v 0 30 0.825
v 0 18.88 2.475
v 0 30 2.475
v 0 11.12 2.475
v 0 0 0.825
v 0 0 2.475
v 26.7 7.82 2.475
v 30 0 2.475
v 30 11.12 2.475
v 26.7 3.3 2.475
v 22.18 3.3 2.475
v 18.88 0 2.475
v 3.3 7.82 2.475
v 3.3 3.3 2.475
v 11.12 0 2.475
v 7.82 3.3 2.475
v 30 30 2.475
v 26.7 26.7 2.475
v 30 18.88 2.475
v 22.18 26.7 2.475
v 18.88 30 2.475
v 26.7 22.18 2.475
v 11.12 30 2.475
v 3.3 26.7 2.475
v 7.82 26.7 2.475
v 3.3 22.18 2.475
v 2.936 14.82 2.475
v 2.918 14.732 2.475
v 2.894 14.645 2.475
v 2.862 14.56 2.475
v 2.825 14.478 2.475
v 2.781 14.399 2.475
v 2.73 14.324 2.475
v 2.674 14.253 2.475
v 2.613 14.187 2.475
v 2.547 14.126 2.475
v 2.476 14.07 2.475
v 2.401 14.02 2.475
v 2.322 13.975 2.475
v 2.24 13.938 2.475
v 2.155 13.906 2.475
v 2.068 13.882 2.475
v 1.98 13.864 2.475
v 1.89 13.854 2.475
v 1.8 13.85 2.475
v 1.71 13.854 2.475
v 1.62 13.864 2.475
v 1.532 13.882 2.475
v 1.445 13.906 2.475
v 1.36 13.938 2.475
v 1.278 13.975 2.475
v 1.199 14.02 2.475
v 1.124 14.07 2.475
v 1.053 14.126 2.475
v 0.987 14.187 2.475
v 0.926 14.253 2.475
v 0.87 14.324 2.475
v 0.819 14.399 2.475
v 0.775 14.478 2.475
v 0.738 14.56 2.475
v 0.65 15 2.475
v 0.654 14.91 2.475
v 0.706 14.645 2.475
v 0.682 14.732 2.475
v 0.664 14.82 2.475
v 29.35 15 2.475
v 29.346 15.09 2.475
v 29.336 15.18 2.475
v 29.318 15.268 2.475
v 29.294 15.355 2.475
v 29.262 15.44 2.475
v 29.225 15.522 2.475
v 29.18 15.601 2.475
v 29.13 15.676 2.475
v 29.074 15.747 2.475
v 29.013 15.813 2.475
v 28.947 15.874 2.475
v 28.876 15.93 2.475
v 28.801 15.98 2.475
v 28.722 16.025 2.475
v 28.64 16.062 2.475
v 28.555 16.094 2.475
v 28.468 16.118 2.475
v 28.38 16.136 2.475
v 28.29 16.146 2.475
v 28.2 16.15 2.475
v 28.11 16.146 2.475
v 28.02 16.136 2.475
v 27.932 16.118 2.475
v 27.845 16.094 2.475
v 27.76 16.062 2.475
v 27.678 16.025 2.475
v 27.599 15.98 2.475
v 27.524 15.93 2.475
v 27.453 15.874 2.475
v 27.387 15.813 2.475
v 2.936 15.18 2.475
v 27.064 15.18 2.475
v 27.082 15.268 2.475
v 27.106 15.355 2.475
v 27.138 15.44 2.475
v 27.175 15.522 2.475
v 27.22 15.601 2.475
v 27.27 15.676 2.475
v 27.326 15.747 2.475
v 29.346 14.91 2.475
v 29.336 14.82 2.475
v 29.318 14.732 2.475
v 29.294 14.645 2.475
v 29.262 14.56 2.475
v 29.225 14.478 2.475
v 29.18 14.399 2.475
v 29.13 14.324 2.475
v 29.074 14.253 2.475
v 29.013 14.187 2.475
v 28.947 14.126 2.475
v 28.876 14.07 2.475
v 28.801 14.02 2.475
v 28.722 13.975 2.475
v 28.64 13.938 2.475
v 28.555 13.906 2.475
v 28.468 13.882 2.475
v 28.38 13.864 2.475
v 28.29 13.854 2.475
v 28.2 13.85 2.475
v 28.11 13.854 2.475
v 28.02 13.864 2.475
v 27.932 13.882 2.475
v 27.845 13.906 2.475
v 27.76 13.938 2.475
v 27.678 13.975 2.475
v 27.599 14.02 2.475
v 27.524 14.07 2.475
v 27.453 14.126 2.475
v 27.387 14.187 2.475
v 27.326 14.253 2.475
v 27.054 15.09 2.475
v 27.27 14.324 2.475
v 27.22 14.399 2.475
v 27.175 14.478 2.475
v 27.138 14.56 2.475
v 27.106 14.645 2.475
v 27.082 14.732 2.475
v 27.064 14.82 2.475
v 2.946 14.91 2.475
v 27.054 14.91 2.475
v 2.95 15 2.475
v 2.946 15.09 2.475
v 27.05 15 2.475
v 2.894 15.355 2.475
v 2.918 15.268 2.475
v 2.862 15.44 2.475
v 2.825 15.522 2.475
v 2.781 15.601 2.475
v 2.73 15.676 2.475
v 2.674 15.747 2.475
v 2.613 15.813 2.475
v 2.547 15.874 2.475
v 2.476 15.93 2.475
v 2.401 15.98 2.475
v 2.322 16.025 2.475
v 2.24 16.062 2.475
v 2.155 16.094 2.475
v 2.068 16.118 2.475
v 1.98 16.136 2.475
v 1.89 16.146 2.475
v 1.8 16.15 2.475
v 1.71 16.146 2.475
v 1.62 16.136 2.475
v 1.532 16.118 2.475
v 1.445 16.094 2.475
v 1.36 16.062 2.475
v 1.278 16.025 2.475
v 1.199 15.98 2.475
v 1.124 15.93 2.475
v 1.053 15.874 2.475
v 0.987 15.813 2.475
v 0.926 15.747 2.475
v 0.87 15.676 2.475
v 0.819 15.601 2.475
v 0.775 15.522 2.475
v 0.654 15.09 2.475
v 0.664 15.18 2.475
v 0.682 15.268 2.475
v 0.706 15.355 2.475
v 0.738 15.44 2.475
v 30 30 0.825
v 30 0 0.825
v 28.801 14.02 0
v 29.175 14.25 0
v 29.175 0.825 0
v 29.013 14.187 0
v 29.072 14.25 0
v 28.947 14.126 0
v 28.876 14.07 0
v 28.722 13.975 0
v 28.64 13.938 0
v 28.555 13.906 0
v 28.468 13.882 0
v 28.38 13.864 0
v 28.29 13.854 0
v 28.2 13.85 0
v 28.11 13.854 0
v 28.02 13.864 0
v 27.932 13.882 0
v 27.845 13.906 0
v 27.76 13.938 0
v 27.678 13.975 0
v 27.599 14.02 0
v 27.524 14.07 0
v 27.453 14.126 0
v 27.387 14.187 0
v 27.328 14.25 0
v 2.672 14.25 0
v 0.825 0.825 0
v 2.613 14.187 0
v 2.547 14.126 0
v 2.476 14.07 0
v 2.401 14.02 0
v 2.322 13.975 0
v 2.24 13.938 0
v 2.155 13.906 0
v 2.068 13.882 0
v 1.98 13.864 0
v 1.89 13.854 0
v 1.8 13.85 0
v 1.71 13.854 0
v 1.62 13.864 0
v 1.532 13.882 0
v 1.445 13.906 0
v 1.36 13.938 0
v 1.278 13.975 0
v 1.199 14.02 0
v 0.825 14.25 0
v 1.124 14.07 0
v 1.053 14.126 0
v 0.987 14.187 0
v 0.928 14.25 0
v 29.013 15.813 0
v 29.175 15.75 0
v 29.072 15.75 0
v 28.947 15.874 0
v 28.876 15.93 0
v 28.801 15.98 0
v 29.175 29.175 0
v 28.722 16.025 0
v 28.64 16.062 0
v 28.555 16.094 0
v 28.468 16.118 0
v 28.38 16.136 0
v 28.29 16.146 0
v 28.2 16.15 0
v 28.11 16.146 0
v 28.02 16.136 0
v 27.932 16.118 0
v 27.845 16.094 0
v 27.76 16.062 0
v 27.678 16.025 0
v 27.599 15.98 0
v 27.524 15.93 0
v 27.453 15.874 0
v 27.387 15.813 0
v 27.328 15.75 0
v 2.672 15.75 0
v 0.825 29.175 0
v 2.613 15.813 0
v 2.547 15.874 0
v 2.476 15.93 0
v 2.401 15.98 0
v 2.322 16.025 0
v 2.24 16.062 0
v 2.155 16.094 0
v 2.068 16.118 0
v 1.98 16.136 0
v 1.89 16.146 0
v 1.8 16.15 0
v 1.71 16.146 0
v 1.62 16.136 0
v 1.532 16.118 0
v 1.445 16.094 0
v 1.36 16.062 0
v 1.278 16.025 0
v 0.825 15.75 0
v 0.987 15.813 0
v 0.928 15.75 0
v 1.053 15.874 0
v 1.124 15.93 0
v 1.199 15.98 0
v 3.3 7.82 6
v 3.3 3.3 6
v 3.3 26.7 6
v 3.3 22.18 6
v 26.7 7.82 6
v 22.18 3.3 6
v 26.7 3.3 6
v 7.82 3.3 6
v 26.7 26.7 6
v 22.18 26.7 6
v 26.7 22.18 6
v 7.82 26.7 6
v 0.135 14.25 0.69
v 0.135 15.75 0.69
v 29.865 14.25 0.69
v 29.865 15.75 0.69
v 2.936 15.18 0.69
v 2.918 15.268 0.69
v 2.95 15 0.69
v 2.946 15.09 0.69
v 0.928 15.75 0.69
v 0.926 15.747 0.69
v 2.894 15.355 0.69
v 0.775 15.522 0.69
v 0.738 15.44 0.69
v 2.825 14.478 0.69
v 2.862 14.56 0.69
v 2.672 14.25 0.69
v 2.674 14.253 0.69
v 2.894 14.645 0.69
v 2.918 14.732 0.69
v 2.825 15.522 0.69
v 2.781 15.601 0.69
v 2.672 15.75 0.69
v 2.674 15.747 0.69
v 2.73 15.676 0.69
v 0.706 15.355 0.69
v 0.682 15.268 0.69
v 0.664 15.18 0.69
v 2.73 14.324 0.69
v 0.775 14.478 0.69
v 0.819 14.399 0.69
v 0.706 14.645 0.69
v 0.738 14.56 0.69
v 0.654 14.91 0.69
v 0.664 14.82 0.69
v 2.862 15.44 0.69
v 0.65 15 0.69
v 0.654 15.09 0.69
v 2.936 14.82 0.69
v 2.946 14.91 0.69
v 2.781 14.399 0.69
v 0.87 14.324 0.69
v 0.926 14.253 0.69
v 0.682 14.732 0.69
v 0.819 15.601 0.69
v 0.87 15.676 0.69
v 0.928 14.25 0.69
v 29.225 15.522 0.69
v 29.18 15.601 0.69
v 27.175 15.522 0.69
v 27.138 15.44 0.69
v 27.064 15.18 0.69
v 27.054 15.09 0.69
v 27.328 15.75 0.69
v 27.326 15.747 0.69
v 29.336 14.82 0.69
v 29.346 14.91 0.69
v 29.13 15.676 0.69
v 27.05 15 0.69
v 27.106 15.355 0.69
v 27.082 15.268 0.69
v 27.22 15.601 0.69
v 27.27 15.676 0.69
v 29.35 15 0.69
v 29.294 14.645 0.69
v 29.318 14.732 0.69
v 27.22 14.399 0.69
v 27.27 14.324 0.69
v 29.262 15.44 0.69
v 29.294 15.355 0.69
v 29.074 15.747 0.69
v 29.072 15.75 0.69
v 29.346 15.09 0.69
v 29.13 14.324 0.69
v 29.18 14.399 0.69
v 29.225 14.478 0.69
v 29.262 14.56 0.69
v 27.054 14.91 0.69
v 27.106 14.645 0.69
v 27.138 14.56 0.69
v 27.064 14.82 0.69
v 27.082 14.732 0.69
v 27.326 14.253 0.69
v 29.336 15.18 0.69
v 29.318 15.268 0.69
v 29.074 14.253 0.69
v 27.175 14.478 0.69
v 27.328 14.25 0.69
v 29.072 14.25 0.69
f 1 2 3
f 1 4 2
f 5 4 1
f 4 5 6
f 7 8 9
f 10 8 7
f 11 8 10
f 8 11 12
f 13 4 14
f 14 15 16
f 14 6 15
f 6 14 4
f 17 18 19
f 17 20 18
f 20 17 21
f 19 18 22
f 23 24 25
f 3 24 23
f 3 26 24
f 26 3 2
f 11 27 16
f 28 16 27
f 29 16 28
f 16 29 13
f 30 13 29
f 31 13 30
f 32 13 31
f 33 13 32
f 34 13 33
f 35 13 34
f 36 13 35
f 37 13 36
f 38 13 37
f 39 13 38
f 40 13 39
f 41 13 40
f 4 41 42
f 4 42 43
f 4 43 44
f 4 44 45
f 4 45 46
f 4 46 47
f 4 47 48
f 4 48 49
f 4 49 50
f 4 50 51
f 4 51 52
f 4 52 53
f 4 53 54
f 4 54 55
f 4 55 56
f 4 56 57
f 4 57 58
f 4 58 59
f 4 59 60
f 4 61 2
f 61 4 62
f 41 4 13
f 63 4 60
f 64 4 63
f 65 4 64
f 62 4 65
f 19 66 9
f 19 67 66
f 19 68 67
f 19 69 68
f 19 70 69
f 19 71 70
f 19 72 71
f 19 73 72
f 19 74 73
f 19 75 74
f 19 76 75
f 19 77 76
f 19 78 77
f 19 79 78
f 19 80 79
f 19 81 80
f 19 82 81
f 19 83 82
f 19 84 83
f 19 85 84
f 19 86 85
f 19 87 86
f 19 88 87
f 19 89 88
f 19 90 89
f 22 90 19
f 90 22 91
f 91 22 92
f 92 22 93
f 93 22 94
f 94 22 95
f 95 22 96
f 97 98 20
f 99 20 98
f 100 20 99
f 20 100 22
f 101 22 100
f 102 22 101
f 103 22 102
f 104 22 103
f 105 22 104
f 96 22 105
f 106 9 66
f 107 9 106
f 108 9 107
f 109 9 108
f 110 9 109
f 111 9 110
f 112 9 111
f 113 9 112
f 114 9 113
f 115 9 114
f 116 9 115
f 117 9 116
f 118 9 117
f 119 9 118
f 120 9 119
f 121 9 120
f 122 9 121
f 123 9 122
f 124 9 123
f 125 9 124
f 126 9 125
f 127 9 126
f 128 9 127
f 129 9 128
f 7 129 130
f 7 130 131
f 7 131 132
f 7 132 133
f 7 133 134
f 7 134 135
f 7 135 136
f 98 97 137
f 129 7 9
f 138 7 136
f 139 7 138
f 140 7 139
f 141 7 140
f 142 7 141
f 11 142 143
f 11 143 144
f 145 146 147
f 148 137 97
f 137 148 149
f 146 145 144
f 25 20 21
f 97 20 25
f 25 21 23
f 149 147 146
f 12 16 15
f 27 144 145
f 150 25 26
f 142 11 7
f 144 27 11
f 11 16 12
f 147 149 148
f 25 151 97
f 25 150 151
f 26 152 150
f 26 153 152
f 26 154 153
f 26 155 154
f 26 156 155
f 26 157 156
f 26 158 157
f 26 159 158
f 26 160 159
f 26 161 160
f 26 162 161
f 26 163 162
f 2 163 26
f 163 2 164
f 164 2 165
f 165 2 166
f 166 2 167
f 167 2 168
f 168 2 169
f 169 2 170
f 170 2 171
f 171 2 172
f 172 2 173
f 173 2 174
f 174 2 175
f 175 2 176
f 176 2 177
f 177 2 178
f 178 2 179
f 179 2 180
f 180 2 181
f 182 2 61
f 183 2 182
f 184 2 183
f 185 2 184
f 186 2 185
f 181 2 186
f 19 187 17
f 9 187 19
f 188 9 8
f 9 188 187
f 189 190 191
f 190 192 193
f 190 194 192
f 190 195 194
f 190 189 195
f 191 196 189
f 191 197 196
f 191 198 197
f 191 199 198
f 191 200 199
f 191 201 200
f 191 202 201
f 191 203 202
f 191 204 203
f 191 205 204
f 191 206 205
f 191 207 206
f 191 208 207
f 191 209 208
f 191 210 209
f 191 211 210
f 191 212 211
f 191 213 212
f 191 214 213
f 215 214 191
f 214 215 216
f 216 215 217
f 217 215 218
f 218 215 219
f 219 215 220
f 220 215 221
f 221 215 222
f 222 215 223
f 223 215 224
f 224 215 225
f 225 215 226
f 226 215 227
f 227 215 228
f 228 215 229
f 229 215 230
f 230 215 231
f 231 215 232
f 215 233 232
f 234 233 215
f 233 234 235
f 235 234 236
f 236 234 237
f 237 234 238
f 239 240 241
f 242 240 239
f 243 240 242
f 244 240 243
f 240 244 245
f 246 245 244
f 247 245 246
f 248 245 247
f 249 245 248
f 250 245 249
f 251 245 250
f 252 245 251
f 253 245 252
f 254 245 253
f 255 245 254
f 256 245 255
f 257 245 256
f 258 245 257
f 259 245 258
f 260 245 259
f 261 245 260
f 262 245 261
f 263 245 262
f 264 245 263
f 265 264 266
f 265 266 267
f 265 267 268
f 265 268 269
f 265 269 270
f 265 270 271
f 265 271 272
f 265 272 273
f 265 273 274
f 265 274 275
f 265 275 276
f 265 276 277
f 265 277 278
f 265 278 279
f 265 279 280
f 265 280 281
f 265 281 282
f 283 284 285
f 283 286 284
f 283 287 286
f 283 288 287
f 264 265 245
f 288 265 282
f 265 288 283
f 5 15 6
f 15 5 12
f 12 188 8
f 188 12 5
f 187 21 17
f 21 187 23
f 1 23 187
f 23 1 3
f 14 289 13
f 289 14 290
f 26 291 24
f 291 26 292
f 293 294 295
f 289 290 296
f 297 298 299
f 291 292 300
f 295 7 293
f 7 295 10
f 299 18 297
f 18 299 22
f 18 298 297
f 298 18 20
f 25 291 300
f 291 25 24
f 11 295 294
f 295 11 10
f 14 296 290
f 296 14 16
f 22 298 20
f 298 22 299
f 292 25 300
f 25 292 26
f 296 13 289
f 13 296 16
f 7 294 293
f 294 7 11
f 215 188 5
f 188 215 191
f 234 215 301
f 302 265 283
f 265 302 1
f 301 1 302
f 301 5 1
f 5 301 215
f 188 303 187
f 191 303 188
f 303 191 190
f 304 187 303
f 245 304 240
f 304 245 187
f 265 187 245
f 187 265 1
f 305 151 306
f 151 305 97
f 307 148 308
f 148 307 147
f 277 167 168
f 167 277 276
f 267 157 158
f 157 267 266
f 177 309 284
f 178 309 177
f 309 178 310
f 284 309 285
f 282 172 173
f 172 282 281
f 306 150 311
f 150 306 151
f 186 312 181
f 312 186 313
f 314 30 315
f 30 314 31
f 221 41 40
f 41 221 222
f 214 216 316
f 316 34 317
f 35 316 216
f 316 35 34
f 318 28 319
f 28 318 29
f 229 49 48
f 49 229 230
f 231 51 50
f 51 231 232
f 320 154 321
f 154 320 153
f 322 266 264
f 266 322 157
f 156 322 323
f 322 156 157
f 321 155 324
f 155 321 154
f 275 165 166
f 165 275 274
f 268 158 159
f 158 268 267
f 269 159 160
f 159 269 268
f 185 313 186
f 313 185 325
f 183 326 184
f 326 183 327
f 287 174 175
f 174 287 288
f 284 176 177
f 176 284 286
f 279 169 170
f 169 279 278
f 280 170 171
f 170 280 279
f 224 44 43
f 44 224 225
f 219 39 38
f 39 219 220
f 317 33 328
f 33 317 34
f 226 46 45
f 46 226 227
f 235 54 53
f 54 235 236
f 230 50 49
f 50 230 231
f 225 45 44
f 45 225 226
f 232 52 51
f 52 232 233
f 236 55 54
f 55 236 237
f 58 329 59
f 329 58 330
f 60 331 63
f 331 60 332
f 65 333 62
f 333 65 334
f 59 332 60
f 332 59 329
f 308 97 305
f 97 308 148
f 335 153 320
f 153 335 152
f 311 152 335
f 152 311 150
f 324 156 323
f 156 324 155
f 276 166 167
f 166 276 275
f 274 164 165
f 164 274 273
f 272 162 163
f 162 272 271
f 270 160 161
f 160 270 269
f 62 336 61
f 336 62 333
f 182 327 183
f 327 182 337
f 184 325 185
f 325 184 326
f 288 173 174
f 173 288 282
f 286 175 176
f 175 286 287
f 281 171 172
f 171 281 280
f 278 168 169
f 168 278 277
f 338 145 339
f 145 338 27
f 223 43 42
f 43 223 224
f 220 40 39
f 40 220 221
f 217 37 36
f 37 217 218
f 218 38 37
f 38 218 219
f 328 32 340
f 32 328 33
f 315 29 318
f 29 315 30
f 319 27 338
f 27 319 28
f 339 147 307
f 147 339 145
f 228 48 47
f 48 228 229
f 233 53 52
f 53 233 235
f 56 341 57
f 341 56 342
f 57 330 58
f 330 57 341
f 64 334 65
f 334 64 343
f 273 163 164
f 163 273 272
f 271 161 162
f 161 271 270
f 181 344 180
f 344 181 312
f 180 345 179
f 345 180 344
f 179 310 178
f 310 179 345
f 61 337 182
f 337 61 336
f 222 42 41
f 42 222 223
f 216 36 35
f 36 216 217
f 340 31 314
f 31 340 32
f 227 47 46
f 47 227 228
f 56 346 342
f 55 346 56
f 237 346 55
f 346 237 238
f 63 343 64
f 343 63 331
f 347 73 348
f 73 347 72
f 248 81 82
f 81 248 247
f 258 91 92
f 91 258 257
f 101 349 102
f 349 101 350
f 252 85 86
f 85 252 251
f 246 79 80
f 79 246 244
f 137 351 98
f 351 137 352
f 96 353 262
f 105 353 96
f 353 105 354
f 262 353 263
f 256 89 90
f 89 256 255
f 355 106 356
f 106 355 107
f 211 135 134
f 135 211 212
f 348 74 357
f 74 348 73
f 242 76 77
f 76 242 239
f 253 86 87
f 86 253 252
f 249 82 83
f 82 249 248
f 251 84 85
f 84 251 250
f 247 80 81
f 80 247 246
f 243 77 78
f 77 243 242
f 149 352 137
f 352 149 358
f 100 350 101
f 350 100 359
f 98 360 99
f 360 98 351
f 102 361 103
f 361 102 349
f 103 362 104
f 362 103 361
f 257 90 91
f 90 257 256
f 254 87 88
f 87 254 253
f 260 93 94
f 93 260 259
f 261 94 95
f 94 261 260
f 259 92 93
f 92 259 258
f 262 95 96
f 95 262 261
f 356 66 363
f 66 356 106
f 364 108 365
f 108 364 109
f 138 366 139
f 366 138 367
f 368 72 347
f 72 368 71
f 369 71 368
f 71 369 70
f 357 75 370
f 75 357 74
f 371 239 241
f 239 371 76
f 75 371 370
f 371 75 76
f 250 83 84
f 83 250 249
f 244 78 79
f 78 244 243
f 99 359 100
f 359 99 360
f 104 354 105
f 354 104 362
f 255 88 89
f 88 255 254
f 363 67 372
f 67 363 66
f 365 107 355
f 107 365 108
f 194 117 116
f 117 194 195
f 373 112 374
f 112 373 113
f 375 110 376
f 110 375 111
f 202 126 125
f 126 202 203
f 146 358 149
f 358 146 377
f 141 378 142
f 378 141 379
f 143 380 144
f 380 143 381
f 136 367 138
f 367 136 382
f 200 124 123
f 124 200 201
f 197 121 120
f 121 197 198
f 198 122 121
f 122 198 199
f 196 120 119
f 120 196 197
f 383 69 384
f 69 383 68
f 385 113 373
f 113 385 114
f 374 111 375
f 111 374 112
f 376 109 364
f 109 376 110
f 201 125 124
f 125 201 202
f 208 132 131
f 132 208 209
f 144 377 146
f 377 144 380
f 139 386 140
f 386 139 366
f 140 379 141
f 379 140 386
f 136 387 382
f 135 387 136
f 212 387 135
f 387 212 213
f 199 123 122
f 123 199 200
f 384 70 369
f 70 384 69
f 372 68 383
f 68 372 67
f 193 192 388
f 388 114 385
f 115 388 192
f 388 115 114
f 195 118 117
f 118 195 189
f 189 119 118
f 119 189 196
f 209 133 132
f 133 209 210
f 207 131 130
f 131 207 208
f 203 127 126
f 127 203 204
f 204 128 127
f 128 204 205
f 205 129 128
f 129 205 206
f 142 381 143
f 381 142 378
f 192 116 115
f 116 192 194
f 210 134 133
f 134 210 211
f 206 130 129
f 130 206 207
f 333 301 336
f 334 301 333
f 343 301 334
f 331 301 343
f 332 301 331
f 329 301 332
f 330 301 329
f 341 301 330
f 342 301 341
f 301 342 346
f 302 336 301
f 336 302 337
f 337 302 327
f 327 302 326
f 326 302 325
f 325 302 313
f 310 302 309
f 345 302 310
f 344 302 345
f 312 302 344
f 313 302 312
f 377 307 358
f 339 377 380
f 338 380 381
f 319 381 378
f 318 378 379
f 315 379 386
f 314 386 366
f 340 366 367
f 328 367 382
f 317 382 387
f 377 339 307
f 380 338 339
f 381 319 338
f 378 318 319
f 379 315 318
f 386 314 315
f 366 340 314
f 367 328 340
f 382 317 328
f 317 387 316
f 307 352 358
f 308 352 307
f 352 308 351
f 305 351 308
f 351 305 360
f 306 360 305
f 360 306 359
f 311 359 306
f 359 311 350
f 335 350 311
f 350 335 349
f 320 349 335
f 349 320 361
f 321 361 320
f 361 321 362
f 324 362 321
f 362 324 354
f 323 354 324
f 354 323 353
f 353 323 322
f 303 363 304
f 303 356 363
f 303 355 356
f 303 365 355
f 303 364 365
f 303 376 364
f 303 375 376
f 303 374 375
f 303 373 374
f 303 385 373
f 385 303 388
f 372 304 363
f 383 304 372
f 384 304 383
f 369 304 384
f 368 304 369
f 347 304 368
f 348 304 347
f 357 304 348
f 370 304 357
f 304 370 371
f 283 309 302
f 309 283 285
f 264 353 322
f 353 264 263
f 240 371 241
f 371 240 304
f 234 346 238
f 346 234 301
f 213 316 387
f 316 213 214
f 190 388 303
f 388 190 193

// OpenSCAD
// file: settings.scad
cube_width=30;
cube_height=16;
cube_thickness=3.3;

cap_width=30;
cap_height=6;
cap_thickness=3.3;

glyph_depth=0.7;
glyph_thickness=1.5;

photo_resitor_hole_r = 3.1;
spring_contact_hole_r = 3.35;
// file: cap_1x1.scad
include <settings.scad>

module cap_1x1(width, height, thickness, holes_mask)
{
    width1=width-thickness;
    difference()
    {
        union()
        {
            cube([width, width, thickness*3/4]);
            translate([thickness,thickness,0])cube([width-2*thickness, width-2*thickness, height]);
        }
        union()
        {
            translate([width/2,width/2,0])rotate([0,0,45])translate([-width1/2,-width1/2,thickness*3/4]) cube([width1,width1,height]);
                        //corners
            translate([0,0.25*thickness,0])rotate([45,0,0]) translate([-0.5*width, -width, -0.5*height]) cube([2*width, width, 2*height]);
            translate([0.25*thickness,0,0]) rotate([0,-45,0]) translate([-width, -0.5*width, -0.5*height]) cube([width, 2*width, 2*height]);
            translate([width-0.25*thickness,0,0]) rotate([0,45,0]) translate([0, 0, -0.5*height]) cube([width, 2*width, 2*height]);
            translate([0,width-0.25*thickness,0]) rotate([-45,0,0]) translate([-0.5*width, 0, -0.5*height]) cube([2*width, width, 2*height]);
            
            if (holes_mask >= 8)
            {
                translate([width/2, thickness-1.5, -0.5]) cylinder(r=1.15, h=height*1.5, $fn=80);
            }
            if ((holes_mask%8) >= 4)
            {
                translate([width/2, width-thickness+1.5, -0.5]) cylinder(r=1.15, h=height*1.5, $fn=80);
            }
            if ((holes_mask%4)>= 2)
            {
                translate([thickness-1.5, width/2, -0.5]) cylinder(r=1.15, h=height*1.5, $fn=80);
            }
            if (holes_mask%2 >= 1)
            {
                translate([width-thickness+1.5, width/2, -0.5]) cylinder(r=1.15, h=height*1.5, $fn=80);
            }
        }
    }
}

cap_1x1(cap_width, cap_height, cap_thickness, 9);
//ring(10,1,1);
//arrow(1, 20, 3, 1);
//transistor_npn(30, 1, 1);
// main file
use <cap_1x1.scad>
include <settings.scad>

module cap_1x1_wireI(width, height, thickness)
{
    difference()
    {
        cap_1x1(width, height, thickness, 3);
        translate([0,(width-glyph_thickness)/2,-0.01]) cube([width, glyph_thickness, glyph_depth]);
    }
}

cap_1x1_wireI(cap_width, cap_height, cap_thickness);
